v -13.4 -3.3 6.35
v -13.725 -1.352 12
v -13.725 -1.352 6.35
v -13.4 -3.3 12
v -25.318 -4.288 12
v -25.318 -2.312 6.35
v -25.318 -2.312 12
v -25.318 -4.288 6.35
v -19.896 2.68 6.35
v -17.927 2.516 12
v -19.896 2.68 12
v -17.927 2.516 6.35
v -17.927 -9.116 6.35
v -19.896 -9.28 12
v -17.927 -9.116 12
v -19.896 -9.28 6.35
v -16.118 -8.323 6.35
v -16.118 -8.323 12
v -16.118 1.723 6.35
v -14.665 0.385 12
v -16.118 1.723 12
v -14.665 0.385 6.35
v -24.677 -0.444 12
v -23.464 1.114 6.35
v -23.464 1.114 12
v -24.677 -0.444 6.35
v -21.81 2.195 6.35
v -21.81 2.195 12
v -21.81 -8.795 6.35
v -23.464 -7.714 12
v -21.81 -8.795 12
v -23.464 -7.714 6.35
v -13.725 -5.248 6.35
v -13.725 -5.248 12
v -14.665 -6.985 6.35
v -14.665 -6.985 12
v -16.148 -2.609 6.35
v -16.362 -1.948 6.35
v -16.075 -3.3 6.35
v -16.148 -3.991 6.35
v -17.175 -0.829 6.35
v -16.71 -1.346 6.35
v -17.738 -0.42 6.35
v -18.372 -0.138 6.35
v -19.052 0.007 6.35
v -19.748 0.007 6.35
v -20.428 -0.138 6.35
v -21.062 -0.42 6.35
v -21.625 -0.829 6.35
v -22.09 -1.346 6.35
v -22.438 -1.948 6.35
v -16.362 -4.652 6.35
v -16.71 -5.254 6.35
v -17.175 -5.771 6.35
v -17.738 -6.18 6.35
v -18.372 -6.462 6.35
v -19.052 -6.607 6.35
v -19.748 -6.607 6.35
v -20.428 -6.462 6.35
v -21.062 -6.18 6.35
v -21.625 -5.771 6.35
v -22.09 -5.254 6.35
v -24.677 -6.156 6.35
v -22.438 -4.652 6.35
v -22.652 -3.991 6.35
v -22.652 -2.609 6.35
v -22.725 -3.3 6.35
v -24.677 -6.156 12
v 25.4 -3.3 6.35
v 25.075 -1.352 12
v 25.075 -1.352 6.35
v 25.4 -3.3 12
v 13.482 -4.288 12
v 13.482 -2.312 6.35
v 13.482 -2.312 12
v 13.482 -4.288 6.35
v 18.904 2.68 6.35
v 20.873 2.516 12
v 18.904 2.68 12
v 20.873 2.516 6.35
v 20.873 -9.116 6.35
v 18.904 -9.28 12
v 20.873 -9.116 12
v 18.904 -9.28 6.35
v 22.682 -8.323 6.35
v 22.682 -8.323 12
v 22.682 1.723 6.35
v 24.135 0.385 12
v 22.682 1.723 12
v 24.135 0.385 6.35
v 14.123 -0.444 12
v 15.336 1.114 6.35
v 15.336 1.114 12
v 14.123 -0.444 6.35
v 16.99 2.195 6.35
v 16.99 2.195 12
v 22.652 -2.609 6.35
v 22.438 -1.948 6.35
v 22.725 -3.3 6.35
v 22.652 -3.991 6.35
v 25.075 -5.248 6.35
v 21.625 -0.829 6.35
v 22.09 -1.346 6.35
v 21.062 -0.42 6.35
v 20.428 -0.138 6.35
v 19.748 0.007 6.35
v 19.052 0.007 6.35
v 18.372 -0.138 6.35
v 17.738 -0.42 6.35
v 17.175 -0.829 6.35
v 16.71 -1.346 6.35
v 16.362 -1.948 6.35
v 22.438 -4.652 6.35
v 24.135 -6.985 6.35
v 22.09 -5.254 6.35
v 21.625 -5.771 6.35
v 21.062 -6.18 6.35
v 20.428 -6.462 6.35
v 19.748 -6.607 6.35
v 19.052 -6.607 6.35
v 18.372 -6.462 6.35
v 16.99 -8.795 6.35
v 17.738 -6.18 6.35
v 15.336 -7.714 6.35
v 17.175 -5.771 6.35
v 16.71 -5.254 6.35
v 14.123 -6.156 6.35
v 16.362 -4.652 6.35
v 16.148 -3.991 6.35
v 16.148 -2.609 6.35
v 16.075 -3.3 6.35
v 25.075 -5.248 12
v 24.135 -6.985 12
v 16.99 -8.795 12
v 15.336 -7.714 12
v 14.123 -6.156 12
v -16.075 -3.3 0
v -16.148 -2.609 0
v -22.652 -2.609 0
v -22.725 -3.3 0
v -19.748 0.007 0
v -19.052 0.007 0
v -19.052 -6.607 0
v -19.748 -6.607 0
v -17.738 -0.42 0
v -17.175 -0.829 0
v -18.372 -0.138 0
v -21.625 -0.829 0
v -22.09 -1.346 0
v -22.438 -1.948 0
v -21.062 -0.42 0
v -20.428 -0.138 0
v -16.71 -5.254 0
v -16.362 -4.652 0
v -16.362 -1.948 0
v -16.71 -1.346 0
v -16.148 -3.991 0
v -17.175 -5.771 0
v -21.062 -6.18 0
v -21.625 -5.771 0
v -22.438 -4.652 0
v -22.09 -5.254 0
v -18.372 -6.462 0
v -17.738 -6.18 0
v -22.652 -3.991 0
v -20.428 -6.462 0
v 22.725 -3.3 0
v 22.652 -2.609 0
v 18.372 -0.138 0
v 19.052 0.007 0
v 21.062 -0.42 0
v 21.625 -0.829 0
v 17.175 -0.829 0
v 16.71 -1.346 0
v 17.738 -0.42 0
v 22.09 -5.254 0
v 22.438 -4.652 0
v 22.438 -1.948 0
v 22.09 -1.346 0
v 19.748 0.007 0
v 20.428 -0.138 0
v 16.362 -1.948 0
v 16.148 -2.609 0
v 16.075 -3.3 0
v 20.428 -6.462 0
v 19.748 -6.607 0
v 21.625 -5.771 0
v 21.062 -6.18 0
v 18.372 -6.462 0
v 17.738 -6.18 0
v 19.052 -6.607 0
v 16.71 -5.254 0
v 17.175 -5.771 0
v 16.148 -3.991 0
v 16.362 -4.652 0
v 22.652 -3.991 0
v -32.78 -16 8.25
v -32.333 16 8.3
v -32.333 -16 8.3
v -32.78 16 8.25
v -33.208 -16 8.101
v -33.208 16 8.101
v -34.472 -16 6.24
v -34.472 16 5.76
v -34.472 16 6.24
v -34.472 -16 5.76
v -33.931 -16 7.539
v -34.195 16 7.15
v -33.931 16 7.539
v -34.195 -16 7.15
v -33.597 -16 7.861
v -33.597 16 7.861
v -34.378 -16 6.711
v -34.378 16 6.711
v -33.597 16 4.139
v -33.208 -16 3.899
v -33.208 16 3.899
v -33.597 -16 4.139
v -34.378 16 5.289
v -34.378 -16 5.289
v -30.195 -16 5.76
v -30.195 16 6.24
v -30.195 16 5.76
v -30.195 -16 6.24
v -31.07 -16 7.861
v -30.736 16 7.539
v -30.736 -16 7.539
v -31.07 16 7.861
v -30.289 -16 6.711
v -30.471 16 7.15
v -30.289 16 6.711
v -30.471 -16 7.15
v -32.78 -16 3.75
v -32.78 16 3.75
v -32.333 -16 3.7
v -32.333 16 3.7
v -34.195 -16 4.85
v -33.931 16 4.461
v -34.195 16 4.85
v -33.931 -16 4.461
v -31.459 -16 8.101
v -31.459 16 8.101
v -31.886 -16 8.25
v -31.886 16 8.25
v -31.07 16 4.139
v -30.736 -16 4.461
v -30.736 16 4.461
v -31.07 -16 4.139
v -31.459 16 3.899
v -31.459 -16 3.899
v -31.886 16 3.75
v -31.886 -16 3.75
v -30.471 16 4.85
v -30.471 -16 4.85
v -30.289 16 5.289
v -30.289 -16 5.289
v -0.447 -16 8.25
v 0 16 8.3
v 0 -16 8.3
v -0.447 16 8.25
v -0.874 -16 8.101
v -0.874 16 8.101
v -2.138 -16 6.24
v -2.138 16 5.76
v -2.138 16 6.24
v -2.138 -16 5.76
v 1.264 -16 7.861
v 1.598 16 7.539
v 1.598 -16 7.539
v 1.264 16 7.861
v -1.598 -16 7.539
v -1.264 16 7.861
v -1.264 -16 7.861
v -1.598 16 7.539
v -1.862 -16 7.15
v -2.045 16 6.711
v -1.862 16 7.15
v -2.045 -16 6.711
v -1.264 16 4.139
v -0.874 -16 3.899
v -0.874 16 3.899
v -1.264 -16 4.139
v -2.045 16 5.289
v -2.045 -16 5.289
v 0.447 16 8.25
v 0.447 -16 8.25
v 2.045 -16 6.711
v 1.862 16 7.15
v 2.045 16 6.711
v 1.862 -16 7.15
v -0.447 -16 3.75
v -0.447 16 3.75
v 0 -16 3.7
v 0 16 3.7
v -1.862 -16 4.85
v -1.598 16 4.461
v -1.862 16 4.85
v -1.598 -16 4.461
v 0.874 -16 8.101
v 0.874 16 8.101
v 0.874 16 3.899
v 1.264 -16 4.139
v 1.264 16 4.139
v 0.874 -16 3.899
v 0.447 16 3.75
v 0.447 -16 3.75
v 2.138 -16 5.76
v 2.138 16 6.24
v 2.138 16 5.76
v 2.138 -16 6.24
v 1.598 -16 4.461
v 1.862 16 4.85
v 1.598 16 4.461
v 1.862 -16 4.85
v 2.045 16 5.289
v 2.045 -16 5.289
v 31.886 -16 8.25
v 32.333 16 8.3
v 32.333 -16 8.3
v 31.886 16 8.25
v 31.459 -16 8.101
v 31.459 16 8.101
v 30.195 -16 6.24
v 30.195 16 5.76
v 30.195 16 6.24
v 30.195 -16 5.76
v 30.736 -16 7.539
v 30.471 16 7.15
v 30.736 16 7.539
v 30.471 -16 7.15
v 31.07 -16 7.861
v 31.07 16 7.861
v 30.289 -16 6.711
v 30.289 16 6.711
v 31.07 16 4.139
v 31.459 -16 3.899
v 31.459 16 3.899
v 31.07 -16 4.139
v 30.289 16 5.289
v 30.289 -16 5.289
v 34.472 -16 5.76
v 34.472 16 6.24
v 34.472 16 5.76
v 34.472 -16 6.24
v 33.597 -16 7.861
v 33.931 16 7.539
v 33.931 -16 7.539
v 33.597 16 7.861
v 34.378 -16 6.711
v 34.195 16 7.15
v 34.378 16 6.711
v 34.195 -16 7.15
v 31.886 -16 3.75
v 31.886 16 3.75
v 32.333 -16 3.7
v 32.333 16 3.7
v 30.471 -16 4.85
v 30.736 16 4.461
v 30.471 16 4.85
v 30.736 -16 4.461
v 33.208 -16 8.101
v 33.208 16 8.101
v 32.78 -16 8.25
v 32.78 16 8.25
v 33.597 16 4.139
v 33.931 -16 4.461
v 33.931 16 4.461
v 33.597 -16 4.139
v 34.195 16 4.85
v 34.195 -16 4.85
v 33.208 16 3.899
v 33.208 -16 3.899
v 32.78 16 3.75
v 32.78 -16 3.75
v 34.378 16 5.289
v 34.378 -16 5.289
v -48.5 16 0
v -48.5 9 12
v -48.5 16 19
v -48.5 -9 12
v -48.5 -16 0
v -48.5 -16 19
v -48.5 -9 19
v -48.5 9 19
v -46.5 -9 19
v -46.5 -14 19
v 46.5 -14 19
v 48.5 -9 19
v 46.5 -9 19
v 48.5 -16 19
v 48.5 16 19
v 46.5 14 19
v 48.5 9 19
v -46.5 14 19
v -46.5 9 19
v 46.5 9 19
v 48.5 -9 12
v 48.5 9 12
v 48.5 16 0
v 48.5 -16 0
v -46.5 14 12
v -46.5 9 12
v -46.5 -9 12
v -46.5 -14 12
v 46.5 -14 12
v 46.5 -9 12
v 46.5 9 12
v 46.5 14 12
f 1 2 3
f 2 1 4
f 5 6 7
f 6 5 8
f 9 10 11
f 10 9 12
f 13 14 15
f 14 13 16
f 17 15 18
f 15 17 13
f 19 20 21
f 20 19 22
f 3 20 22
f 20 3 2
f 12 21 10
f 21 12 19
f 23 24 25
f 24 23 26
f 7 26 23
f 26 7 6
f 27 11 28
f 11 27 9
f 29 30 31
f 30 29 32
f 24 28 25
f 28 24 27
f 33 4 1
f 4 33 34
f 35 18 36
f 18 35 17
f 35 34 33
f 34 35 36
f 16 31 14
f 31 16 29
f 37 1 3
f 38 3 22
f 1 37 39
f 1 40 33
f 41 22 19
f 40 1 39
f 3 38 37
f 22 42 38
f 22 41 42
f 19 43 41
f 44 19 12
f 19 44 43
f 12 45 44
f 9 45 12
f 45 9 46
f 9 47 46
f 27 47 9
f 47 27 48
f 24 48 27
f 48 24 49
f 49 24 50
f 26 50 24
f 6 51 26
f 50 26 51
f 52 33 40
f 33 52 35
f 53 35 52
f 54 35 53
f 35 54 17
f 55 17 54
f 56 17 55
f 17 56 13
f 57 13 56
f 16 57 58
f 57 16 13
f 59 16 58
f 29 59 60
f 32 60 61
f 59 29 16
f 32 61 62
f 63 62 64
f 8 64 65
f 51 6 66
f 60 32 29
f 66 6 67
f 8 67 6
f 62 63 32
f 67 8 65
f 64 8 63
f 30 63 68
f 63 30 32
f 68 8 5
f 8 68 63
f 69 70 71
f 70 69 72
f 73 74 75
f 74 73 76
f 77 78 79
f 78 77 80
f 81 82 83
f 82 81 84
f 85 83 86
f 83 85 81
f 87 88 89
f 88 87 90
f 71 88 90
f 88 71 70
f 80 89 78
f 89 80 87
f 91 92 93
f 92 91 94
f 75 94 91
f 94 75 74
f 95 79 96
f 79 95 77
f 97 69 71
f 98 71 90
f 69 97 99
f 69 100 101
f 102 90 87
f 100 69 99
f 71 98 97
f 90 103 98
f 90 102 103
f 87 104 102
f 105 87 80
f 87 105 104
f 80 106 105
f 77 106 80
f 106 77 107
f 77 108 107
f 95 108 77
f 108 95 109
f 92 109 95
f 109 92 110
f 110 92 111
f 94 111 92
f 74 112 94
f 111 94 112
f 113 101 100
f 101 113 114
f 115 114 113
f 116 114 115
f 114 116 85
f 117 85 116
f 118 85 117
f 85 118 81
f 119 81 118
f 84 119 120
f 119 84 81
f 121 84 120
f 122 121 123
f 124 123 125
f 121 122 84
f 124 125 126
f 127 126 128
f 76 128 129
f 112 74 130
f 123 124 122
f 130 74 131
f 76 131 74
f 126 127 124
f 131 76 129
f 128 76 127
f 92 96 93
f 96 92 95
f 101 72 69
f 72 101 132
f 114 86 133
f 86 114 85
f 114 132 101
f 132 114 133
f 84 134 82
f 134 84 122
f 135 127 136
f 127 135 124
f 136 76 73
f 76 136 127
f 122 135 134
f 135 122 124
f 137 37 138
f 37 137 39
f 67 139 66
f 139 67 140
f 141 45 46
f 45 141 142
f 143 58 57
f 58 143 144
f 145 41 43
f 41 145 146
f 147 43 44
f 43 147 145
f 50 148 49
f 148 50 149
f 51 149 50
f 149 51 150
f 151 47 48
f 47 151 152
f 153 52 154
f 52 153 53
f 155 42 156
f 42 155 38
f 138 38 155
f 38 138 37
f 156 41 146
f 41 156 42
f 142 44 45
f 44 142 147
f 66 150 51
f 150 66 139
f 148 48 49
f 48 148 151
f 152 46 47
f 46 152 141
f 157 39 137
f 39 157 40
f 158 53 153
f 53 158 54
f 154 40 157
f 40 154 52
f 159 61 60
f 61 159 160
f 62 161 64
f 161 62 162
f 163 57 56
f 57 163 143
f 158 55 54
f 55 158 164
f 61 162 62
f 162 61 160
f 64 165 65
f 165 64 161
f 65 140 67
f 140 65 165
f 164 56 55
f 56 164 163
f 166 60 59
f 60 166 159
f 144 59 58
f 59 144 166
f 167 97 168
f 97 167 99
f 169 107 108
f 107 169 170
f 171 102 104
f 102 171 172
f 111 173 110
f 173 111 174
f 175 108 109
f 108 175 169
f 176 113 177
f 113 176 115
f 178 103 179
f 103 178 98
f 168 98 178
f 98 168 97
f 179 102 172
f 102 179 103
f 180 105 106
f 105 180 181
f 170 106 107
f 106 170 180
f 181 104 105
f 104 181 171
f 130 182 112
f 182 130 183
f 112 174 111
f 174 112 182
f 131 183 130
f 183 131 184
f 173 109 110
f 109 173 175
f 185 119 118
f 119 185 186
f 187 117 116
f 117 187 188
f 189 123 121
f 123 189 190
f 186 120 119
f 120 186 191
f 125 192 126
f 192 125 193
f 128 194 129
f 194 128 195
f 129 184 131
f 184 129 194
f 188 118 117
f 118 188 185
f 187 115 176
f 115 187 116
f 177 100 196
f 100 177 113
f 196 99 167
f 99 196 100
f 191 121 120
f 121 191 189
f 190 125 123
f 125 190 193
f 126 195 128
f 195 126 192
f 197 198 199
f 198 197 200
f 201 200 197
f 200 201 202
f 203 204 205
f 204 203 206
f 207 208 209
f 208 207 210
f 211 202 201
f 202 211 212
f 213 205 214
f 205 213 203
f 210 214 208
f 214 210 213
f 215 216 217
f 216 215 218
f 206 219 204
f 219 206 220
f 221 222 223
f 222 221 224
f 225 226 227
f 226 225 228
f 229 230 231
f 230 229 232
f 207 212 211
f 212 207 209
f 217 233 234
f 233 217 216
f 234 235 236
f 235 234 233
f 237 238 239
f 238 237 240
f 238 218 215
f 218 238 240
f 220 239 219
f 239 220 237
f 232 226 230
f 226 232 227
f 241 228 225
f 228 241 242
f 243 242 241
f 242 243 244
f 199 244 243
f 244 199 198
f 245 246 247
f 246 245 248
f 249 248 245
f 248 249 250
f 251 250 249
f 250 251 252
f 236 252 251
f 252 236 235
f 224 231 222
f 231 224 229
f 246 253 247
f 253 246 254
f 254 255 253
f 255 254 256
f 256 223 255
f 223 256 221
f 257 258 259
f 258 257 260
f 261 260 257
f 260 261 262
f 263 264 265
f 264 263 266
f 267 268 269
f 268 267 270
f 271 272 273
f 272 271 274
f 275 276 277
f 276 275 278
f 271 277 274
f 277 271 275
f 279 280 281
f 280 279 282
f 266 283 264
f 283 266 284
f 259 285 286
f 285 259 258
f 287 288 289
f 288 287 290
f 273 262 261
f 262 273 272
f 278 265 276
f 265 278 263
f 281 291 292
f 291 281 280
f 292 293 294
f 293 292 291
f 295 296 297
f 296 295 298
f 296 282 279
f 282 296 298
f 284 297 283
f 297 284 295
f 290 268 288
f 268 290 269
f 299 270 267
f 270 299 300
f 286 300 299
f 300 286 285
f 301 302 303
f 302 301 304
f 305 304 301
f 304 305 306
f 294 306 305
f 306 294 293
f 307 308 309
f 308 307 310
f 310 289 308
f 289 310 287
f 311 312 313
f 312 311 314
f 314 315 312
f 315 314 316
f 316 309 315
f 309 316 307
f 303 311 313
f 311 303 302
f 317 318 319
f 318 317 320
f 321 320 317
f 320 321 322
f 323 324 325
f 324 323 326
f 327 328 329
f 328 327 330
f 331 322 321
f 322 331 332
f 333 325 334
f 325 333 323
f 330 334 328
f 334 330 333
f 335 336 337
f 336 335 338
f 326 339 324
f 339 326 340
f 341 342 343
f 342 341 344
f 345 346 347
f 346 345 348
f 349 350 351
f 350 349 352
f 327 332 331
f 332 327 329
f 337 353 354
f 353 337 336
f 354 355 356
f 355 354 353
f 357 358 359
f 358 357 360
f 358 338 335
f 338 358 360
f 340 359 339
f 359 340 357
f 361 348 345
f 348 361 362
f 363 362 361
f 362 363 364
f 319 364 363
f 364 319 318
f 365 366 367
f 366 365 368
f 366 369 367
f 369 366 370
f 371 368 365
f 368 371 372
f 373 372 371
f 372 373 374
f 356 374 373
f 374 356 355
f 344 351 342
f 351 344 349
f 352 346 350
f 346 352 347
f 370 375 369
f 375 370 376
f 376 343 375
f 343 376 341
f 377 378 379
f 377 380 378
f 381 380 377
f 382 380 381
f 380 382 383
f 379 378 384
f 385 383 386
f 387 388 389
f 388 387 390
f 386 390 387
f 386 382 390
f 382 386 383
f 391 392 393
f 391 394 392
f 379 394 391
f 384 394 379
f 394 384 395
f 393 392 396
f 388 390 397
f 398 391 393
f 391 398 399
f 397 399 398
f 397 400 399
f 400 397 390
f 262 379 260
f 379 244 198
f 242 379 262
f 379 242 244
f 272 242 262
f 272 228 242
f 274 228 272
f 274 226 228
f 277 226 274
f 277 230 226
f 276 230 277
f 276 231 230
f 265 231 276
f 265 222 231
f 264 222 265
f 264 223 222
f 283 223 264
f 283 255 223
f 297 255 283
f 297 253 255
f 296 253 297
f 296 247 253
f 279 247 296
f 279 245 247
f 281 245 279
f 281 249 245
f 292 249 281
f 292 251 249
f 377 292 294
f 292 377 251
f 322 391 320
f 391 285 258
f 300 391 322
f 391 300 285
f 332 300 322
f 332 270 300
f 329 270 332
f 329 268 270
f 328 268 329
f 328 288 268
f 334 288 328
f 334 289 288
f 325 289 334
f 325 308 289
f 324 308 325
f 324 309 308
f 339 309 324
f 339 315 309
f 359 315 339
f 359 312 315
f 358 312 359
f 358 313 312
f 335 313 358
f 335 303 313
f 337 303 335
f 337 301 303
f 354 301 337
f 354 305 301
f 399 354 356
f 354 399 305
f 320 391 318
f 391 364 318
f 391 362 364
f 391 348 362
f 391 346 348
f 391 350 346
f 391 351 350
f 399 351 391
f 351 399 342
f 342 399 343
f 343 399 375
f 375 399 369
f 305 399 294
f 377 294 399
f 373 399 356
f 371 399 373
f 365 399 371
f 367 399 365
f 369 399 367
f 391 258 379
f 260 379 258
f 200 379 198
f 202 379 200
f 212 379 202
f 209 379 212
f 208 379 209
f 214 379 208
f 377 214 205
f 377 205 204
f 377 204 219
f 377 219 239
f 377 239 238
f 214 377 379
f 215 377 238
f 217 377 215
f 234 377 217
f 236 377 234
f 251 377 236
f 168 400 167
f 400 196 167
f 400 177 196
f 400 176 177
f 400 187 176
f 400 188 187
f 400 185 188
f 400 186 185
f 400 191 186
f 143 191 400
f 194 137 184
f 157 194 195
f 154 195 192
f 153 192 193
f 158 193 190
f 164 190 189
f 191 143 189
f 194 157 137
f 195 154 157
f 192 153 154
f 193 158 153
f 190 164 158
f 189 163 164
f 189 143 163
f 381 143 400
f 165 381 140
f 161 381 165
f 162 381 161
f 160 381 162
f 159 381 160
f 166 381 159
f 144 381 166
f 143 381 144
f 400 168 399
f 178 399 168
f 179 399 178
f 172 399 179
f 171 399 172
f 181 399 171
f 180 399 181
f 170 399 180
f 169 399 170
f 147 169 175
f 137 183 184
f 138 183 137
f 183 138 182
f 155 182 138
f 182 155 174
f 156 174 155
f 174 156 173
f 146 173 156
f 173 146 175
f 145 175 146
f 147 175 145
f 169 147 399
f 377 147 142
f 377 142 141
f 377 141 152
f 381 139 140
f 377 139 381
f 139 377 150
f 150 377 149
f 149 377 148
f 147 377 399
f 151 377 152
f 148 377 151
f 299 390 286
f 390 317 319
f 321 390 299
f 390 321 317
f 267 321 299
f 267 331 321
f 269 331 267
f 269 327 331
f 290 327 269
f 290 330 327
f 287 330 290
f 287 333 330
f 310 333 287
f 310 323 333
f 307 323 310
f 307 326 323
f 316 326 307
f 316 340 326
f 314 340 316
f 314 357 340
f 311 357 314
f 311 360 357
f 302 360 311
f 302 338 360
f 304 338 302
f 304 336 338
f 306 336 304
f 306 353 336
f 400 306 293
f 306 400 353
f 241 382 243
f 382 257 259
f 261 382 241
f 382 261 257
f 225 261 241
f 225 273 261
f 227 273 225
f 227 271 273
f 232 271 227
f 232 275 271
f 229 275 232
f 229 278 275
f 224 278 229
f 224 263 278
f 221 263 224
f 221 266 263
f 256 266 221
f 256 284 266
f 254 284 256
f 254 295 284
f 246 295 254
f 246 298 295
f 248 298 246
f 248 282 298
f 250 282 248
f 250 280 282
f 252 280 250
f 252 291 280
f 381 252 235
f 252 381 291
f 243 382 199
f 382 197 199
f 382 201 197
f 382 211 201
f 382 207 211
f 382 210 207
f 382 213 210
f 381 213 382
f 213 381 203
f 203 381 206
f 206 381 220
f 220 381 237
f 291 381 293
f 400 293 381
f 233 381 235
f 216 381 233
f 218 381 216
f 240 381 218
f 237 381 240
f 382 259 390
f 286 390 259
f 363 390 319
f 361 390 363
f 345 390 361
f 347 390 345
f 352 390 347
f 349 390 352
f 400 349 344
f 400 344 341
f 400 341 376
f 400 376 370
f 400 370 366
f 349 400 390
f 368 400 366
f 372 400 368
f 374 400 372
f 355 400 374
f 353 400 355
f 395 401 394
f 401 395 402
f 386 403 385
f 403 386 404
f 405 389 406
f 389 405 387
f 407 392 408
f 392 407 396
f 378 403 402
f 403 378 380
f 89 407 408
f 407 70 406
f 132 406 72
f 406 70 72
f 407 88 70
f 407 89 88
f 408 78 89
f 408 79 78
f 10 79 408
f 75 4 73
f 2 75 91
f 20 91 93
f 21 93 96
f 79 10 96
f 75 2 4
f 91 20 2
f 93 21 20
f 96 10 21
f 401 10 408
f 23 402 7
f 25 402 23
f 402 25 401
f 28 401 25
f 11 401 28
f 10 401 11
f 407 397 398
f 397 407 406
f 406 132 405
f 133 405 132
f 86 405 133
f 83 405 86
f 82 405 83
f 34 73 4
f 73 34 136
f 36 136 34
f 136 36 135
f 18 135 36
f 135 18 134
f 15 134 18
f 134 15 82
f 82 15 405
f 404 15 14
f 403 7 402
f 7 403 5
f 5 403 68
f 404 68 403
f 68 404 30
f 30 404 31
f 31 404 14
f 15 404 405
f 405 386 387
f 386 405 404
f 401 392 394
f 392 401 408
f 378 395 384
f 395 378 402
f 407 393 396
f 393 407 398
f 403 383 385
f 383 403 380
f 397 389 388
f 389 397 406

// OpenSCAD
// file: nutsandbolts/data-access.scad
// Norm Nuts and Bolts - a OpenSCAD library
// Copyright (C) 2012  Johannes Kneer

// This program is free software: you can redistribute it and/or modify
// it under the terms of the GNU General Public License as published by
// the Free Software Foundation, either version 3 of the License, or
// (at your option) any later version.

// This program is distributed in the hope that it will be useful,
// but WITHOUT ANY WARRANTY; without even the implied warranty of
// MERCHANTABILITY or FITNESS FOR A PARTICULAR PURPOSE.  See the
// GNU General Public License for more details.

// You should have received a copy of the GNU General Public License
// along with this program.  If not, see <http://www.gnu.org/licenses/>.


// DATABASE ACCESS FUNCTIONS AND CONSTANTS



// == CONSTANTS ==

// screw table access keys
_NB_S_DESC            = 0;
_NB_S_FAMKEY			 = 1;
_NB_S_LENGTH          = 2;
_NB_S_NOTHREAD_LENGTH = 3;

_NB_F_DESC			 = 0;
_NB_F_OUTER_DIA       = 1;
_NB_F_INNER_DIA       = 2;
_NB_F_LEAD            = 3;
_NB_F_KEY             = 4;
_NB_F_KEY_DEPTH       = 5;
_NB_F_HEAD_HEIGHT     = 6;
_NB_F_HEAD_DIA        = 7;
_NB_F_NUT_KEY         = 8;
_NB_F_NUT_HEIGHT      = 9;


// == FUNCTIONS ==

// _get_screw("descriptor")   with descriptor = M8x25
//   find the line for a general object in the data matrix

function _get_screw(n) = data_screw[search([n], data_screw)[0]];
function _get_screw_fam(n) = data_screw_fam[search([_get_screw(n)[_NB_S_FAMKEY]], data_screw_fam)[0]];

function _get_fam(n) = data_screw_fam[search([n], data_screw_fam)[0]];


// _get_XXXXX("descriptor") functions
// find a single property in the database

function _get_desc(n)        = _get_screw(n)[_NB_S_DESC];
function _get_famkey(n)         = _get_screw(n)[_NB_S_FAMKEY];
function _get_length(n)      = _get_screw(n)[_NB_S_LENGTH];
function _get_nt_length(n)   = _get_screw(n)[_NB_S_NOTHREAD_LENGTH];

function _get_outer_dia(n)   = _get_screw_fam(n)[_NB_F_OUTER_DIA];
function _get_inner_dia(n)   = _get_screw_fam(n)[_NB_F_INNER_DIA];
function _get_lead(n)        = _get_screw_fam(n)[_NB_F_LEAD];
function _get_head_height(n) = _get_screw_fam(n)[_NB_F_HEAD_HEIGHT];
function _get_head_dia(n)    = _get_screw_fam(n)[_NB_F_HEAD_DIA];
function _get_nut_key(n)     = _get_screw_fam(n)[_NB_F_NUT_KEY];
function _get_nut_height(n)  = _get_screw_fam(n)[_NB_F_NUT_HEIGHT];
// file: screws.scad
include <nutsandbolts/cyl_head_bolt.scad>;

// get screw
function get_screw(name) =
  // different screws
  let(screws = [
    // screw name; screw diameter; countersink parameter (head diameter, head depth)
    ["M3", 3, [6, 4.5]],
    ["4-40", 2.9, [5.3, 4.5]],
    ["M4", 4, [8, 5.5]], // NOTE: counter sink dimensions not confirmed
    ["M5", 5, [10, 6.5]], // NOTE: counter sink dimensions not confirmed
    ["1/4-20", 6.35, [13.50, 4.09]] // NOTE: dimensions from mcmaster carr https://www.mcmaster.com/#92210a537/=1did9kw
  ])
  screws[search([name], screws)[0]];

// make a machine screw
// @param name which screw
// @param length how long to make the hole maximally
// @param countersink whether to countersink the screw
// @param tolerance what tolerance to add (in mm) to the screw radius
// @param stretch how much to stretch (in mm) the radius in the x direction (to account for collapse in vertical printing), added on top of the tolerance
// @param z_plus how much thicker to make shape in z (for cutouts)
// @param fn $fn parameter
module machine_screw (name, length, countersink = true, tolerance = 0.15, stretch = 0, z_plus = 0, fn = 30) {
  // parameters
  screw = get_screw(name);
  screw_d = screw[1]; // diameter
  screw_cs = screw[2]; // counter snk
  if (countersink && screw_cs[1] > length) {
    echo("warning - length is shorter than countersink cutout");
  }

  union() {
    translate([0, 0, -z_plus])
      resize([screw_d+2*tolerance+2*stretch, 0, 0])
        cylinder(h=length+2*z_plus, d=screw_d+2*tolerance, center=false, $fn=fn);
    if (countersink) {
      translate([0, 0, -z_plus])
        resize([screw_cs[0]+2*stretch, 0, 0])
          cylinder(h=screw_cs[1], d1=screw_cs[0], d2=0, center=false, $fn=fn);
    }
  }
}

// make a threaded machine screw --> uses the https://github.com/JohK/nutsnbolts library
// @param name which screw
// @param length how long to make the hole maximally
// @param countersink whether to countersink the screw
// @render_threads true/false whether to render the threads, set the global $render_threads = true; to turn on globally
module threaded_machine_screw (name, length, countersink = false, render_threads = $render_threads) {
  if (countersink) {
    echo("warning - countersink not yet implemented for threaded machine screws");
    // note: this should be possible with the dimensions from the screws library for head diameter and head height!
  }
  translate([0, 0, length])
  if (render_threads) {
    hole_threaded(name = name, thread = "modeled", l = length);
  } else {
    hole_threaded(name = name, thread = "no", l = length);
  }
}

// examples
color("yellow") machine_screw("M3", 5, countersink = false);
color("green") translate([0, 10, 0]) machine_screw("M3", 10);
color("purple") translate([0, 20, 0]) machine_screw("M3", 5, tolerance = 0.5, stretch = 0.5);
color("red") translate([0, -10, 0]) machine_screw("M4", 8);
color("blue") translate([0, -20, 0]) machine_screw("M4", 3, z_plus = 1);



// get hex nut
function get_hexnut(name) =
  // different nuts
  let(nuts = [
    // nut name; nut width (not the radius!); nut thickness
    ["M3", 5.5, 2.4],
    ["M4", 7, 3.2],
    ["M5", 8, 4]
  ])
  nuts[search([name], nuts)[0]];


// make a hexnut
// @param name which hexnut
// @param tolerance what tolerance to add (in mm) to the screw radius
// @param stretch how much to stretch (in mm) the radius in the x direction (to account for collapse in vertical printing), added on top of the tolerance
// @param z_plus how much thicker to make shape in z (for cutouts)
// @param align whether to align the hexnut to the "bottom" (default), "center" or "top" of the current location (not the bottom)
module hexnut (name, tolerance = 0.025, stretch = 0, z_plus = 0, screw_hole = true, align = "bottom") {
  nut = get_hexnut(name);
  nut_d = nut[1]/cos(180/6)+2*tolerance; // diameter
  nut_h = nut[2]+2*z_plus; // thickness
  move_z = (align == "top") ? [0, 0, -nut[2]] : ((align == "center") ? [0, 0, -nut[2]/2] : [0, 0, 0]);
  translate([0, 0, -z_plus])
    // apply stretch to whole shape
    resize([nut_d+2*stretch, 0, 0])
      difference() {
        translate(move_z) cylinder(h=nut_h, d=nut_d, center=false, $fn=6);
        if (screw_hole) {
          // generating screw hole with default tolerance
          translate(move_z) machine_screw(name, nut_h, z_plus = 0.1, countersink = false);
        }
      }
}

// examples
color("yellow") translate([10, 0, 0]) hexnut("M3");
color("green") translate([10, 10, 0]) hexnut("M3", z_plus = 0.15);
color("purple") translate([10, 20, 0]) hexnut("M3", 5, tolerance = 0.5, stretch = 1);
color("red") translate([10, -10, 0]) hexnut("M4");
color("blue") translate([10, -20, 0]) hexnut("M4", screw_hole = false);
// file: utils.scad
// common convenience functions and modules
use <screws.scad>;

// x/y but not z centered cube (regular center=true also centered z)
module xy_center_cube (size) {
  translate([-size[0]/2, -size[1]/2, 0])
  cube(size, center=false);
}

xy_center_cube([40, 20, 4]);


// x/y center cube with feet
// @param feet how many feet to add
// @param foot_height what the height of each foot is (in mm)
// @param tolerance what tolerance to build into the feet to make sure stacking works
// @param stackable whether it should be stackable or not
module xy_center_cube_with_feet (size, feet = 2, foot_height = 5, tolerance = 0.3, stackable = true) {
  foot_d = foot_height/cos(180/6);
  foot_list = [for (i = [1 : 1 : feet]) i];
  foot_spacing = size[0]/(2*feet);
  difference() {
    union() {
      translate([-size[0]/2, -size[1]/2, 0])
        cube(size, center=false);

      // add feet
      for(i = foot_list)
        translate([-size[0]/2 + (2*i - 1) * foot_spacing, - size[1]/2, 0])
          rotate([0, 0, 0])
            cylinder(h=size[2] - tolerance, d=foot_d, $fn=6, center = false);
    }
    if (stackable) {
      // add feet cutout
      z_plus = 0.1; // z plus for cutouts
      for(i = foot_list)
        translate([-size[0]/2 + (2*i - 1) * foot_spacing, + size[1]/2, -z_plus])
          rotate([0, 0, 0])
            cylinder(h=size[2]+2*z_plus, d=foot_d+tolerance, $fn=6, center = false);
    }
  }
}

translate([0, 40, 0])
  color("green")
    xy_center_cube_with_feet([40, 20, 4]);


translate([0, -40, 0])
  color("red")
    xy_center_cube_with_feet([80, 20, 4], feet = 5, foot_height = 6, stackable = false);


// standard attachment for a rectangular module affixed on top of a board
// @param thickness how thick base board is
// @param screws array of screw parameters (type, location x, location y, tolerance)
// @param block array of cube parameters (length, width, offset from base board, thickness)
// @param location central point of the cutout
// @param rotation how much to rotate
// @param show whether to show cube (not intended for printing)
module block_attachment (thickness, screws, block, location = [0,0,0], rotation = [0,0,0], show = false) {
  // parameters
  z_plus = 0.1; // how much thicker to make cutouts in z

  difference() {
    union() {
      children(0);
      if (show) {
        // cube outline (not printed)
        translate(location) rotate(rotation)
          translate([0, 0, thickness+block[2]])
            #xy_center_cube([block[0], block[1], block[3]]);
      }
    }

    translate(location)
      rotate(rotation) {
        // screw holes
        for(x=[-1, 1])
          for(y=[-1, 1])
            translate([x*screws[1], y*screws[2], 0])
              machine_screw(screws[0], thickness+block[0]+block[1], tolerance = screws[3], z_plus = z_plus);
      }
  }
}

translate([80, 30, 0])
  color("blue")
    block_attachment(10, ["M3", 15, 5, 0.2], [40, 20, 5, 10], show = true)
      xy_center_cube([60, 30, 10]);

translate([80, -30, 0])
  color("blue")
    block_attachment(10, ["M3", 15, 5, 0.2], [40, 20, 5, 10], show = false)
      xy_center_cube([60, 30, 10]);
// main file
use <utils.scad>;
use <screws.scad>;


// holder for alicat mfcs
module mfc_holder() {

  mfc_base = [93, 28, 12];
  rim_height = 7;
  rim_depth = 7;
  rim_thickness = 2;
  screw_head_diameter = 12;
  attachment_distance = 25.4;
  attachment_thickness = 6.35;
  base = mfc_base + [2 * rim_thickness, 2 * rim_thickness, 0];

  difference() {
    union() {
      // base + rim
      xy_center_cube(base + [0, 0, rim_height]);
    }

    // rim
    translate([0, 0, base[2]]) xy_center_cube(mfc_base);
    translate([0, 0, base[2]]) xy_center_cube(base - [-0.01, 2 * rim_depth, 0]);

    // 1/4-20 attachment screws
    for(x=[-1, 1])
      translate([x*base[0]/5, (attachment_distance - base[1])/2, attachment_thickness])
          cylinder(h = base[2], d = screw_head_diameter);

    for(x=[-1, 1])
      translate([x*base[0]/5, (attachment_distance - base[1])/2, 0])
          machine_screw("1/4-20", base[2], countersink = false, tolerance = 0.15, z_plus =0.01);

    // M4 attachment screw
    for(x=[-1, 0, 1])
      translate([x*base[0]/3, base[1]/2, base[2]/2])
        rotate([90, 0, 0]) rotate([0, 0, 90])
          machine_screw("M4", base[1], countersink = false, tolerance = 0.15, z_plus =0.01, stretch = 0.15);
  };
}

mfc_holder();
